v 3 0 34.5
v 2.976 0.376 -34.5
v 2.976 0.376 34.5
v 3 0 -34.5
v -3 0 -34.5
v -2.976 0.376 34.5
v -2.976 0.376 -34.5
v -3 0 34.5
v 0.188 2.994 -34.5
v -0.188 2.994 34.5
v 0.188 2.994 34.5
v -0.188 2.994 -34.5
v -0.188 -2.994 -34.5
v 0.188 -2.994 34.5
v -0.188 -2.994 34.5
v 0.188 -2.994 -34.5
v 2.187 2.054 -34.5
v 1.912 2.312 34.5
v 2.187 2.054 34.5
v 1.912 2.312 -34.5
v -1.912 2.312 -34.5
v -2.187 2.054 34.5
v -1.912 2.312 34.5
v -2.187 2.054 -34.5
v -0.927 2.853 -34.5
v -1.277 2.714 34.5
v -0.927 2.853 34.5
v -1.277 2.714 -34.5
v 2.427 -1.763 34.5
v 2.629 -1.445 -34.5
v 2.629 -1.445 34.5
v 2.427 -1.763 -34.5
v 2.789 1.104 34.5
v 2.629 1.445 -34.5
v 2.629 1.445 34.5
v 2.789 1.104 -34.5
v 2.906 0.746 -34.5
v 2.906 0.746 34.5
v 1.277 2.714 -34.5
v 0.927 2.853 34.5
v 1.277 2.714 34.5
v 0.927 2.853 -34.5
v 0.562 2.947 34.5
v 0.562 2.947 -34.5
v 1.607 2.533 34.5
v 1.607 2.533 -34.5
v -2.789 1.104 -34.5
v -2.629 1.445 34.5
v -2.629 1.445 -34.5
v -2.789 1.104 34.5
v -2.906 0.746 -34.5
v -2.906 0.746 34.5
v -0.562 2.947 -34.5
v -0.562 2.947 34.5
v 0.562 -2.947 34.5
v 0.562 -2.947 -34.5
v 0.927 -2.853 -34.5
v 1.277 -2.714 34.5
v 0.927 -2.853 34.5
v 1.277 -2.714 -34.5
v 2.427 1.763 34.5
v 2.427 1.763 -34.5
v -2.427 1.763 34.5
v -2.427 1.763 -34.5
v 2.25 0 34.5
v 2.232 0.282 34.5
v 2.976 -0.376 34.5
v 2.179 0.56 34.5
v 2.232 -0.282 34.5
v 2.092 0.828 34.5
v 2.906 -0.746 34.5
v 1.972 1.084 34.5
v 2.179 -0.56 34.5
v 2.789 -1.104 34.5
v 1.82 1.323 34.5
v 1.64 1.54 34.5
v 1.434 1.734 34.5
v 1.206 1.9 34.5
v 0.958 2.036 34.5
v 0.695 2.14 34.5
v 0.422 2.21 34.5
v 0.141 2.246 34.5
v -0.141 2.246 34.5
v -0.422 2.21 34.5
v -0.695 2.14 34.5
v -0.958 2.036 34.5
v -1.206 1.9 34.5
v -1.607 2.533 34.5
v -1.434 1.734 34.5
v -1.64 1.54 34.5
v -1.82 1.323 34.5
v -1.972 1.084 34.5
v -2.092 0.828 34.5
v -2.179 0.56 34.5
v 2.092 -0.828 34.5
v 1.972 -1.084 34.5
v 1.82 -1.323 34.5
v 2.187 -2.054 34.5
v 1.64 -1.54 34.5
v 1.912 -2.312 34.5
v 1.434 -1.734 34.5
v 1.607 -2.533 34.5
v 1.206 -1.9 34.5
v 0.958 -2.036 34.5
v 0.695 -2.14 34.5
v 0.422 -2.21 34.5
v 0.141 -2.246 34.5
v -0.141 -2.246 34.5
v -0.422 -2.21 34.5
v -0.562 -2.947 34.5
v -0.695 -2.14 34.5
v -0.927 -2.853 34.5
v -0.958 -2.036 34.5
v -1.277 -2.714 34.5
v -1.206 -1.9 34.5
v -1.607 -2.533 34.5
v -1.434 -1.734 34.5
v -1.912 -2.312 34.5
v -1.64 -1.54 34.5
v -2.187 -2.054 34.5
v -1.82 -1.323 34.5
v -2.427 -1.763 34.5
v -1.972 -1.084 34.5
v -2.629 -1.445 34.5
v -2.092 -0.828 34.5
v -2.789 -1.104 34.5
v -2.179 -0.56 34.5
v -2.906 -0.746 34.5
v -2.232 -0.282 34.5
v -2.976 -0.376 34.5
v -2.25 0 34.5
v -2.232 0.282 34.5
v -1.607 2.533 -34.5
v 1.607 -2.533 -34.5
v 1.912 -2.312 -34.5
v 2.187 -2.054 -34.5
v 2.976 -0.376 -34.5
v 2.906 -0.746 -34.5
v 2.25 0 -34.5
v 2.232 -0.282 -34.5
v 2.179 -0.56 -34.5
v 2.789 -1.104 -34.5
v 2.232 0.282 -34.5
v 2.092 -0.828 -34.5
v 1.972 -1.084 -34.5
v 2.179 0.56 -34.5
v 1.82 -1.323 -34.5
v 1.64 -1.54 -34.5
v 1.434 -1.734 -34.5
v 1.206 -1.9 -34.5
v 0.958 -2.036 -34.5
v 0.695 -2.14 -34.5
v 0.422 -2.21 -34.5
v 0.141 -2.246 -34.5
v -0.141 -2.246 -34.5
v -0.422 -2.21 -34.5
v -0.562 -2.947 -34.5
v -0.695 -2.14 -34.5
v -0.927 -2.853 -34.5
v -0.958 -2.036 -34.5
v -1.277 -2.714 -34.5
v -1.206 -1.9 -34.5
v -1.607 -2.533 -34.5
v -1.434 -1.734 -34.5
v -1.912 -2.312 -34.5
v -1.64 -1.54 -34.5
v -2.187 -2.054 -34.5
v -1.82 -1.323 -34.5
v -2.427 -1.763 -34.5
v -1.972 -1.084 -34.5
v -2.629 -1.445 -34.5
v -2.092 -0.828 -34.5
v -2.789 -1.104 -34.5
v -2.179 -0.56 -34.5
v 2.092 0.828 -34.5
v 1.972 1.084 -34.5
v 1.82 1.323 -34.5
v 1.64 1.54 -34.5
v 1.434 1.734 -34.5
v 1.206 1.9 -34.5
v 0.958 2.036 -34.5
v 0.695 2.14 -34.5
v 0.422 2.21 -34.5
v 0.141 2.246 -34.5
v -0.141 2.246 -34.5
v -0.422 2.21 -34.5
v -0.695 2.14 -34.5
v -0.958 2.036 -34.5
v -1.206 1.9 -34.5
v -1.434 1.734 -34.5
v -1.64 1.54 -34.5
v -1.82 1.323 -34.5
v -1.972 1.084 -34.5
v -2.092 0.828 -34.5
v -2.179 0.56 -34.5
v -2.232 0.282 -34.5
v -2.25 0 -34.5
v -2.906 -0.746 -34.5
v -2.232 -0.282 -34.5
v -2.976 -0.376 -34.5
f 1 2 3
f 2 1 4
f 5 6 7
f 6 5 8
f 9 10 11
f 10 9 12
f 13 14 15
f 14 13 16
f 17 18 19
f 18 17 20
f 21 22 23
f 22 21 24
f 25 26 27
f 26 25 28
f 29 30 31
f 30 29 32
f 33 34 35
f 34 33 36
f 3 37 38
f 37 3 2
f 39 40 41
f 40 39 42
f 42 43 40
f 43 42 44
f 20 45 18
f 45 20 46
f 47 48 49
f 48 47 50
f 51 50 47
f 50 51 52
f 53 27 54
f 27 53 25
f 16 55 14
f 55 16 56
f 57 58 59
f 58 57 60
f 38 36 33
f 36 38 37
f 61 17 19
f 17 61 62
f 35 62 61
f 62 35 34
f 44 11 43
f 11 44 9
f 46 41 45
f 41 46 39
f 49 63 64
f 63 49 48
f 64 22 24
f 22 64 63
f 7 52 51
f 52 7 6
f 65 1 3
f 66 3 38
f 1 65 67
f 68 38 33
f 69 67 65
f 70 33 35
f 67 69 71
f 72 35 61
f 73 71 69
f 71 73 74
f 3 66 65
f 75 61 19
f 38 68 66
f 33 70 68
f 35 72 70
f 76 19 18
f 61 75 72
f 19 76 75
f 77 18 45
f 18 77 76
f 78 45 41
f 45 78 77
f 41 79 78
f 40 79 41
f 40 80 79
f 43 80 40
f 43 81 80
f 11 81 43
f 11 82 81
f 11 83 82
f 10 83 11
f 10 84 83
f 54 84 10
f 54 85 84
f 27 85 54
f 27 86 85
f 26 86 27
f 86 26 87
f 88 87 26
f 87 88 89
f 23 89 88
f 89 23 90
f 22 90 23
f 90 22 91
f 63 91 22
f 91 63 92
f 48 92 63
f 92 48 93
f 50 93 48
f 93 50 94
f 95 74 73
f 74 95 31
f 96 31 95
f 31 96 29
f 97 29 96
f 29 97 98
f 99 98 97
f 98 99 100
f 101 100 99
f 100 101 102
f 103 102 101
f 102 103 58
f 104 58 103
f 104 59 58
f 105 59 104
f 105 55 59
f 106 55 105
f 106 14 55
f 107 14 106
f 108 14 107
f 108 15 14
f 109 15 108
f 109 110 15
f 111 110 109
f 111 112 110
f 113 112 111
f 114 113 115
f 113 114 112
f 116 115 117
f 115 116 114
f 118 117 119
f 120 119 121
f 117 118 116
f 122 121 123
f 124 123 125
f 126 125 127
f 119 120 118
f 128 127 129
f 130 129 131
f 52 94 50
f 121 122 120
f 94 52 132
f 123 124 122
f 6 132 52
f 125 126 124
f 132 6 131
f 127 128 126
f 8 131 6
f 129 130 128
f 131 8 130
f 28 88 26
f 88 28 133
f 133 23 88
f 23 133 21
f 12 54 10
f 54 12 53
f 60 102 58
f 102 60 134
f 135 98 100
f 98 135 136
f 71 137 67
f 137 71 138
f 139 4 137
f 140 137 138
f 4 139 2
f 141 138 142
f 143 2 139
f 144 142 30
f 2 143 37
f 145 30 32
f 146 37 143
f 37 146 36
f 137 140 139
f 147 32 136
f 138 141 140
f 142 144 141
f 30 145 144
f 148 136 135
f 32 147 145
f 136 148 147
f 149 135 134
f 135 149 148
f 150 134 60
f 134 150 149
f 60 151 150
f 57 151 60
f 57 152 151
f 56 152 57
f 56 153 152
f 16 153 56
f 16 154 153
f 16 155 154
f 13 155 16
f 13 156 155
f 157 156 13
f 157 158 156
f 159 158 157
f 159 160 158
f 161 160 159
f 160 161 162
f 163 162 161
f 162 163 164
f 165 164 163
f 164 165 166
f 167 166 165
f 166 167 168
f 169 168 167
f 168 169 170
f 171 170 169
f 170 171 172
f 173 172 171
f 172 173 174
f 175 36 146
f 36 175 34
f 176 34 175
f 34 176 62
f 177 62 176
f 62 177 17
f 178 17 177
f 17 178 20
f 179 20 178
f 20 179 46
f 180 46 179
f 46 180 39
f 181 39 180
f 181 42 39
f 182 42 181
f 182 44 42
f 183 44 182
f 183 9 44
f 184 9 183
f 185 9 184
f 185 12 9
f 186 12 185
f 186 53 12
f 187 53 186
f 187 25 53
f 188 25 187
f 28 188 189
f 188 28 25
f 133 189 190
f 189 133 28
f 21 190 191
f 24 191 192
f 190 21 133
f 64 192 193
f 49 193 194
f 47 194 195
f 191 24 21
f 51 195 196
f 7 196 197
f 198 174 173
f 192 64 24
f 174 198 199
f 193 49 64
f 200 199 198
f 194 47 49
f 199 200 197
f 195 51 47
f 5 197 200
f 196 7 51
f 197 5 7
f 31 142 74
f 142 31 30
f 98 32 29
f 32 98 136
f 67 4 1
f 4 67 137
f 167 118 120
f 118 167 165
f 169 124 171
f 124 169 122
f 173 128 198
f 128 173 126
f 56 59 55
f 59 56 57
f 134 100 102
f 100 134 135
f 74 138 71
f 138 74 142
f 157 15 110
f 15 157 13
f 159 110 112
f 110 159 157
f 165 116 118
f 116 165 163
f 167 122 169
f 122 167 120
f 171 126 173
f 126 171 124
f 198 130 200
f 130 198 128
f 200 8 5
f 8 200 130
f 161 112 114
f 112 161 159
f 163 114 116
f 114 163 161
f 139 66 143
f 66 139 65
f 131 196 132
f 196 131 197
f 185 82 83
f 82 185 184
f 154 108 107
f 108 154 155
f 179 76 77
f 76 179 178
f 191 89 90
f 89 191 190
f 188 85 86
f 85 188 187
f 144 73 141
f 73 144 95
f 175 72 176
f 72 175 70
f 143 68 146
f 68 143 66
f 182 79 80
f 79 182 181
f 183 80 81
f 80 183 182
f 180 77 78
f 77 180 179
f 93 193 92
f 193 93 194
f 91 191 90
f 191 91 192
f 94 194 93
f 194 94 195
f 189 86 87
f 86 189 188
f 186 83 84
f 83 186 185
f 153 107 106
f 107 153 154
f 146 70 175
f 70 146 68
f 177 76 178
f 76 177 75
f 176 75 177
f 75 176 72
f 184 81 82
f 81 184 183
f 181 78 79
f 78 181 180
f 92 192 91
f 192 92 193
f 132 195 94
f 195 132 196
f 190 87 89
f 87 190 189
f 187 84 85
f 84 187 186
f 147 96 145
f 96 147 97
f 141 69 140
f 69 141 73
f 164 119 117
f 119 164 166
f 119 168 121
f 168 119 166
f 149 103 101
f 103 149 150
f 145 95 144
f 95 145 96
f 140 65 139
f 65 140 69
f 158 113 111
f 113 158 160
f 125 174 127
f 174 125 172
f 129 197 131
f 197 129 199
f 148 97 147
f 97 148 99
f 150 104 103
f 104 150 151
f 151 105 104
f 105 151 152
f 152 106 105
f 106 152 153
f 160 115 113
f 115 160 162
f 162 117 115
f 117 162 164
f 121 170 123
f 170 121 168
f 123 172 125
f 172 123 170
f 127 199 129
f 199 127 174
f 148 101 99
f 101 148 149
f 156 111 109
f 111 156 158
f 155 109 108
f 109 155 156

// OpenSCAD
$fn = 50;


difference() {
	union() {
		translate(v = [0, 0, -34.5000000000]) {
			cylinder(h = 69, r = 3.0000000000);
		}
	}
	union() {
		translate(v = [0, 0, -100.0000000000]) {
			cylinder(h = 200, r = 2.2500000000);
		}
	}
}
